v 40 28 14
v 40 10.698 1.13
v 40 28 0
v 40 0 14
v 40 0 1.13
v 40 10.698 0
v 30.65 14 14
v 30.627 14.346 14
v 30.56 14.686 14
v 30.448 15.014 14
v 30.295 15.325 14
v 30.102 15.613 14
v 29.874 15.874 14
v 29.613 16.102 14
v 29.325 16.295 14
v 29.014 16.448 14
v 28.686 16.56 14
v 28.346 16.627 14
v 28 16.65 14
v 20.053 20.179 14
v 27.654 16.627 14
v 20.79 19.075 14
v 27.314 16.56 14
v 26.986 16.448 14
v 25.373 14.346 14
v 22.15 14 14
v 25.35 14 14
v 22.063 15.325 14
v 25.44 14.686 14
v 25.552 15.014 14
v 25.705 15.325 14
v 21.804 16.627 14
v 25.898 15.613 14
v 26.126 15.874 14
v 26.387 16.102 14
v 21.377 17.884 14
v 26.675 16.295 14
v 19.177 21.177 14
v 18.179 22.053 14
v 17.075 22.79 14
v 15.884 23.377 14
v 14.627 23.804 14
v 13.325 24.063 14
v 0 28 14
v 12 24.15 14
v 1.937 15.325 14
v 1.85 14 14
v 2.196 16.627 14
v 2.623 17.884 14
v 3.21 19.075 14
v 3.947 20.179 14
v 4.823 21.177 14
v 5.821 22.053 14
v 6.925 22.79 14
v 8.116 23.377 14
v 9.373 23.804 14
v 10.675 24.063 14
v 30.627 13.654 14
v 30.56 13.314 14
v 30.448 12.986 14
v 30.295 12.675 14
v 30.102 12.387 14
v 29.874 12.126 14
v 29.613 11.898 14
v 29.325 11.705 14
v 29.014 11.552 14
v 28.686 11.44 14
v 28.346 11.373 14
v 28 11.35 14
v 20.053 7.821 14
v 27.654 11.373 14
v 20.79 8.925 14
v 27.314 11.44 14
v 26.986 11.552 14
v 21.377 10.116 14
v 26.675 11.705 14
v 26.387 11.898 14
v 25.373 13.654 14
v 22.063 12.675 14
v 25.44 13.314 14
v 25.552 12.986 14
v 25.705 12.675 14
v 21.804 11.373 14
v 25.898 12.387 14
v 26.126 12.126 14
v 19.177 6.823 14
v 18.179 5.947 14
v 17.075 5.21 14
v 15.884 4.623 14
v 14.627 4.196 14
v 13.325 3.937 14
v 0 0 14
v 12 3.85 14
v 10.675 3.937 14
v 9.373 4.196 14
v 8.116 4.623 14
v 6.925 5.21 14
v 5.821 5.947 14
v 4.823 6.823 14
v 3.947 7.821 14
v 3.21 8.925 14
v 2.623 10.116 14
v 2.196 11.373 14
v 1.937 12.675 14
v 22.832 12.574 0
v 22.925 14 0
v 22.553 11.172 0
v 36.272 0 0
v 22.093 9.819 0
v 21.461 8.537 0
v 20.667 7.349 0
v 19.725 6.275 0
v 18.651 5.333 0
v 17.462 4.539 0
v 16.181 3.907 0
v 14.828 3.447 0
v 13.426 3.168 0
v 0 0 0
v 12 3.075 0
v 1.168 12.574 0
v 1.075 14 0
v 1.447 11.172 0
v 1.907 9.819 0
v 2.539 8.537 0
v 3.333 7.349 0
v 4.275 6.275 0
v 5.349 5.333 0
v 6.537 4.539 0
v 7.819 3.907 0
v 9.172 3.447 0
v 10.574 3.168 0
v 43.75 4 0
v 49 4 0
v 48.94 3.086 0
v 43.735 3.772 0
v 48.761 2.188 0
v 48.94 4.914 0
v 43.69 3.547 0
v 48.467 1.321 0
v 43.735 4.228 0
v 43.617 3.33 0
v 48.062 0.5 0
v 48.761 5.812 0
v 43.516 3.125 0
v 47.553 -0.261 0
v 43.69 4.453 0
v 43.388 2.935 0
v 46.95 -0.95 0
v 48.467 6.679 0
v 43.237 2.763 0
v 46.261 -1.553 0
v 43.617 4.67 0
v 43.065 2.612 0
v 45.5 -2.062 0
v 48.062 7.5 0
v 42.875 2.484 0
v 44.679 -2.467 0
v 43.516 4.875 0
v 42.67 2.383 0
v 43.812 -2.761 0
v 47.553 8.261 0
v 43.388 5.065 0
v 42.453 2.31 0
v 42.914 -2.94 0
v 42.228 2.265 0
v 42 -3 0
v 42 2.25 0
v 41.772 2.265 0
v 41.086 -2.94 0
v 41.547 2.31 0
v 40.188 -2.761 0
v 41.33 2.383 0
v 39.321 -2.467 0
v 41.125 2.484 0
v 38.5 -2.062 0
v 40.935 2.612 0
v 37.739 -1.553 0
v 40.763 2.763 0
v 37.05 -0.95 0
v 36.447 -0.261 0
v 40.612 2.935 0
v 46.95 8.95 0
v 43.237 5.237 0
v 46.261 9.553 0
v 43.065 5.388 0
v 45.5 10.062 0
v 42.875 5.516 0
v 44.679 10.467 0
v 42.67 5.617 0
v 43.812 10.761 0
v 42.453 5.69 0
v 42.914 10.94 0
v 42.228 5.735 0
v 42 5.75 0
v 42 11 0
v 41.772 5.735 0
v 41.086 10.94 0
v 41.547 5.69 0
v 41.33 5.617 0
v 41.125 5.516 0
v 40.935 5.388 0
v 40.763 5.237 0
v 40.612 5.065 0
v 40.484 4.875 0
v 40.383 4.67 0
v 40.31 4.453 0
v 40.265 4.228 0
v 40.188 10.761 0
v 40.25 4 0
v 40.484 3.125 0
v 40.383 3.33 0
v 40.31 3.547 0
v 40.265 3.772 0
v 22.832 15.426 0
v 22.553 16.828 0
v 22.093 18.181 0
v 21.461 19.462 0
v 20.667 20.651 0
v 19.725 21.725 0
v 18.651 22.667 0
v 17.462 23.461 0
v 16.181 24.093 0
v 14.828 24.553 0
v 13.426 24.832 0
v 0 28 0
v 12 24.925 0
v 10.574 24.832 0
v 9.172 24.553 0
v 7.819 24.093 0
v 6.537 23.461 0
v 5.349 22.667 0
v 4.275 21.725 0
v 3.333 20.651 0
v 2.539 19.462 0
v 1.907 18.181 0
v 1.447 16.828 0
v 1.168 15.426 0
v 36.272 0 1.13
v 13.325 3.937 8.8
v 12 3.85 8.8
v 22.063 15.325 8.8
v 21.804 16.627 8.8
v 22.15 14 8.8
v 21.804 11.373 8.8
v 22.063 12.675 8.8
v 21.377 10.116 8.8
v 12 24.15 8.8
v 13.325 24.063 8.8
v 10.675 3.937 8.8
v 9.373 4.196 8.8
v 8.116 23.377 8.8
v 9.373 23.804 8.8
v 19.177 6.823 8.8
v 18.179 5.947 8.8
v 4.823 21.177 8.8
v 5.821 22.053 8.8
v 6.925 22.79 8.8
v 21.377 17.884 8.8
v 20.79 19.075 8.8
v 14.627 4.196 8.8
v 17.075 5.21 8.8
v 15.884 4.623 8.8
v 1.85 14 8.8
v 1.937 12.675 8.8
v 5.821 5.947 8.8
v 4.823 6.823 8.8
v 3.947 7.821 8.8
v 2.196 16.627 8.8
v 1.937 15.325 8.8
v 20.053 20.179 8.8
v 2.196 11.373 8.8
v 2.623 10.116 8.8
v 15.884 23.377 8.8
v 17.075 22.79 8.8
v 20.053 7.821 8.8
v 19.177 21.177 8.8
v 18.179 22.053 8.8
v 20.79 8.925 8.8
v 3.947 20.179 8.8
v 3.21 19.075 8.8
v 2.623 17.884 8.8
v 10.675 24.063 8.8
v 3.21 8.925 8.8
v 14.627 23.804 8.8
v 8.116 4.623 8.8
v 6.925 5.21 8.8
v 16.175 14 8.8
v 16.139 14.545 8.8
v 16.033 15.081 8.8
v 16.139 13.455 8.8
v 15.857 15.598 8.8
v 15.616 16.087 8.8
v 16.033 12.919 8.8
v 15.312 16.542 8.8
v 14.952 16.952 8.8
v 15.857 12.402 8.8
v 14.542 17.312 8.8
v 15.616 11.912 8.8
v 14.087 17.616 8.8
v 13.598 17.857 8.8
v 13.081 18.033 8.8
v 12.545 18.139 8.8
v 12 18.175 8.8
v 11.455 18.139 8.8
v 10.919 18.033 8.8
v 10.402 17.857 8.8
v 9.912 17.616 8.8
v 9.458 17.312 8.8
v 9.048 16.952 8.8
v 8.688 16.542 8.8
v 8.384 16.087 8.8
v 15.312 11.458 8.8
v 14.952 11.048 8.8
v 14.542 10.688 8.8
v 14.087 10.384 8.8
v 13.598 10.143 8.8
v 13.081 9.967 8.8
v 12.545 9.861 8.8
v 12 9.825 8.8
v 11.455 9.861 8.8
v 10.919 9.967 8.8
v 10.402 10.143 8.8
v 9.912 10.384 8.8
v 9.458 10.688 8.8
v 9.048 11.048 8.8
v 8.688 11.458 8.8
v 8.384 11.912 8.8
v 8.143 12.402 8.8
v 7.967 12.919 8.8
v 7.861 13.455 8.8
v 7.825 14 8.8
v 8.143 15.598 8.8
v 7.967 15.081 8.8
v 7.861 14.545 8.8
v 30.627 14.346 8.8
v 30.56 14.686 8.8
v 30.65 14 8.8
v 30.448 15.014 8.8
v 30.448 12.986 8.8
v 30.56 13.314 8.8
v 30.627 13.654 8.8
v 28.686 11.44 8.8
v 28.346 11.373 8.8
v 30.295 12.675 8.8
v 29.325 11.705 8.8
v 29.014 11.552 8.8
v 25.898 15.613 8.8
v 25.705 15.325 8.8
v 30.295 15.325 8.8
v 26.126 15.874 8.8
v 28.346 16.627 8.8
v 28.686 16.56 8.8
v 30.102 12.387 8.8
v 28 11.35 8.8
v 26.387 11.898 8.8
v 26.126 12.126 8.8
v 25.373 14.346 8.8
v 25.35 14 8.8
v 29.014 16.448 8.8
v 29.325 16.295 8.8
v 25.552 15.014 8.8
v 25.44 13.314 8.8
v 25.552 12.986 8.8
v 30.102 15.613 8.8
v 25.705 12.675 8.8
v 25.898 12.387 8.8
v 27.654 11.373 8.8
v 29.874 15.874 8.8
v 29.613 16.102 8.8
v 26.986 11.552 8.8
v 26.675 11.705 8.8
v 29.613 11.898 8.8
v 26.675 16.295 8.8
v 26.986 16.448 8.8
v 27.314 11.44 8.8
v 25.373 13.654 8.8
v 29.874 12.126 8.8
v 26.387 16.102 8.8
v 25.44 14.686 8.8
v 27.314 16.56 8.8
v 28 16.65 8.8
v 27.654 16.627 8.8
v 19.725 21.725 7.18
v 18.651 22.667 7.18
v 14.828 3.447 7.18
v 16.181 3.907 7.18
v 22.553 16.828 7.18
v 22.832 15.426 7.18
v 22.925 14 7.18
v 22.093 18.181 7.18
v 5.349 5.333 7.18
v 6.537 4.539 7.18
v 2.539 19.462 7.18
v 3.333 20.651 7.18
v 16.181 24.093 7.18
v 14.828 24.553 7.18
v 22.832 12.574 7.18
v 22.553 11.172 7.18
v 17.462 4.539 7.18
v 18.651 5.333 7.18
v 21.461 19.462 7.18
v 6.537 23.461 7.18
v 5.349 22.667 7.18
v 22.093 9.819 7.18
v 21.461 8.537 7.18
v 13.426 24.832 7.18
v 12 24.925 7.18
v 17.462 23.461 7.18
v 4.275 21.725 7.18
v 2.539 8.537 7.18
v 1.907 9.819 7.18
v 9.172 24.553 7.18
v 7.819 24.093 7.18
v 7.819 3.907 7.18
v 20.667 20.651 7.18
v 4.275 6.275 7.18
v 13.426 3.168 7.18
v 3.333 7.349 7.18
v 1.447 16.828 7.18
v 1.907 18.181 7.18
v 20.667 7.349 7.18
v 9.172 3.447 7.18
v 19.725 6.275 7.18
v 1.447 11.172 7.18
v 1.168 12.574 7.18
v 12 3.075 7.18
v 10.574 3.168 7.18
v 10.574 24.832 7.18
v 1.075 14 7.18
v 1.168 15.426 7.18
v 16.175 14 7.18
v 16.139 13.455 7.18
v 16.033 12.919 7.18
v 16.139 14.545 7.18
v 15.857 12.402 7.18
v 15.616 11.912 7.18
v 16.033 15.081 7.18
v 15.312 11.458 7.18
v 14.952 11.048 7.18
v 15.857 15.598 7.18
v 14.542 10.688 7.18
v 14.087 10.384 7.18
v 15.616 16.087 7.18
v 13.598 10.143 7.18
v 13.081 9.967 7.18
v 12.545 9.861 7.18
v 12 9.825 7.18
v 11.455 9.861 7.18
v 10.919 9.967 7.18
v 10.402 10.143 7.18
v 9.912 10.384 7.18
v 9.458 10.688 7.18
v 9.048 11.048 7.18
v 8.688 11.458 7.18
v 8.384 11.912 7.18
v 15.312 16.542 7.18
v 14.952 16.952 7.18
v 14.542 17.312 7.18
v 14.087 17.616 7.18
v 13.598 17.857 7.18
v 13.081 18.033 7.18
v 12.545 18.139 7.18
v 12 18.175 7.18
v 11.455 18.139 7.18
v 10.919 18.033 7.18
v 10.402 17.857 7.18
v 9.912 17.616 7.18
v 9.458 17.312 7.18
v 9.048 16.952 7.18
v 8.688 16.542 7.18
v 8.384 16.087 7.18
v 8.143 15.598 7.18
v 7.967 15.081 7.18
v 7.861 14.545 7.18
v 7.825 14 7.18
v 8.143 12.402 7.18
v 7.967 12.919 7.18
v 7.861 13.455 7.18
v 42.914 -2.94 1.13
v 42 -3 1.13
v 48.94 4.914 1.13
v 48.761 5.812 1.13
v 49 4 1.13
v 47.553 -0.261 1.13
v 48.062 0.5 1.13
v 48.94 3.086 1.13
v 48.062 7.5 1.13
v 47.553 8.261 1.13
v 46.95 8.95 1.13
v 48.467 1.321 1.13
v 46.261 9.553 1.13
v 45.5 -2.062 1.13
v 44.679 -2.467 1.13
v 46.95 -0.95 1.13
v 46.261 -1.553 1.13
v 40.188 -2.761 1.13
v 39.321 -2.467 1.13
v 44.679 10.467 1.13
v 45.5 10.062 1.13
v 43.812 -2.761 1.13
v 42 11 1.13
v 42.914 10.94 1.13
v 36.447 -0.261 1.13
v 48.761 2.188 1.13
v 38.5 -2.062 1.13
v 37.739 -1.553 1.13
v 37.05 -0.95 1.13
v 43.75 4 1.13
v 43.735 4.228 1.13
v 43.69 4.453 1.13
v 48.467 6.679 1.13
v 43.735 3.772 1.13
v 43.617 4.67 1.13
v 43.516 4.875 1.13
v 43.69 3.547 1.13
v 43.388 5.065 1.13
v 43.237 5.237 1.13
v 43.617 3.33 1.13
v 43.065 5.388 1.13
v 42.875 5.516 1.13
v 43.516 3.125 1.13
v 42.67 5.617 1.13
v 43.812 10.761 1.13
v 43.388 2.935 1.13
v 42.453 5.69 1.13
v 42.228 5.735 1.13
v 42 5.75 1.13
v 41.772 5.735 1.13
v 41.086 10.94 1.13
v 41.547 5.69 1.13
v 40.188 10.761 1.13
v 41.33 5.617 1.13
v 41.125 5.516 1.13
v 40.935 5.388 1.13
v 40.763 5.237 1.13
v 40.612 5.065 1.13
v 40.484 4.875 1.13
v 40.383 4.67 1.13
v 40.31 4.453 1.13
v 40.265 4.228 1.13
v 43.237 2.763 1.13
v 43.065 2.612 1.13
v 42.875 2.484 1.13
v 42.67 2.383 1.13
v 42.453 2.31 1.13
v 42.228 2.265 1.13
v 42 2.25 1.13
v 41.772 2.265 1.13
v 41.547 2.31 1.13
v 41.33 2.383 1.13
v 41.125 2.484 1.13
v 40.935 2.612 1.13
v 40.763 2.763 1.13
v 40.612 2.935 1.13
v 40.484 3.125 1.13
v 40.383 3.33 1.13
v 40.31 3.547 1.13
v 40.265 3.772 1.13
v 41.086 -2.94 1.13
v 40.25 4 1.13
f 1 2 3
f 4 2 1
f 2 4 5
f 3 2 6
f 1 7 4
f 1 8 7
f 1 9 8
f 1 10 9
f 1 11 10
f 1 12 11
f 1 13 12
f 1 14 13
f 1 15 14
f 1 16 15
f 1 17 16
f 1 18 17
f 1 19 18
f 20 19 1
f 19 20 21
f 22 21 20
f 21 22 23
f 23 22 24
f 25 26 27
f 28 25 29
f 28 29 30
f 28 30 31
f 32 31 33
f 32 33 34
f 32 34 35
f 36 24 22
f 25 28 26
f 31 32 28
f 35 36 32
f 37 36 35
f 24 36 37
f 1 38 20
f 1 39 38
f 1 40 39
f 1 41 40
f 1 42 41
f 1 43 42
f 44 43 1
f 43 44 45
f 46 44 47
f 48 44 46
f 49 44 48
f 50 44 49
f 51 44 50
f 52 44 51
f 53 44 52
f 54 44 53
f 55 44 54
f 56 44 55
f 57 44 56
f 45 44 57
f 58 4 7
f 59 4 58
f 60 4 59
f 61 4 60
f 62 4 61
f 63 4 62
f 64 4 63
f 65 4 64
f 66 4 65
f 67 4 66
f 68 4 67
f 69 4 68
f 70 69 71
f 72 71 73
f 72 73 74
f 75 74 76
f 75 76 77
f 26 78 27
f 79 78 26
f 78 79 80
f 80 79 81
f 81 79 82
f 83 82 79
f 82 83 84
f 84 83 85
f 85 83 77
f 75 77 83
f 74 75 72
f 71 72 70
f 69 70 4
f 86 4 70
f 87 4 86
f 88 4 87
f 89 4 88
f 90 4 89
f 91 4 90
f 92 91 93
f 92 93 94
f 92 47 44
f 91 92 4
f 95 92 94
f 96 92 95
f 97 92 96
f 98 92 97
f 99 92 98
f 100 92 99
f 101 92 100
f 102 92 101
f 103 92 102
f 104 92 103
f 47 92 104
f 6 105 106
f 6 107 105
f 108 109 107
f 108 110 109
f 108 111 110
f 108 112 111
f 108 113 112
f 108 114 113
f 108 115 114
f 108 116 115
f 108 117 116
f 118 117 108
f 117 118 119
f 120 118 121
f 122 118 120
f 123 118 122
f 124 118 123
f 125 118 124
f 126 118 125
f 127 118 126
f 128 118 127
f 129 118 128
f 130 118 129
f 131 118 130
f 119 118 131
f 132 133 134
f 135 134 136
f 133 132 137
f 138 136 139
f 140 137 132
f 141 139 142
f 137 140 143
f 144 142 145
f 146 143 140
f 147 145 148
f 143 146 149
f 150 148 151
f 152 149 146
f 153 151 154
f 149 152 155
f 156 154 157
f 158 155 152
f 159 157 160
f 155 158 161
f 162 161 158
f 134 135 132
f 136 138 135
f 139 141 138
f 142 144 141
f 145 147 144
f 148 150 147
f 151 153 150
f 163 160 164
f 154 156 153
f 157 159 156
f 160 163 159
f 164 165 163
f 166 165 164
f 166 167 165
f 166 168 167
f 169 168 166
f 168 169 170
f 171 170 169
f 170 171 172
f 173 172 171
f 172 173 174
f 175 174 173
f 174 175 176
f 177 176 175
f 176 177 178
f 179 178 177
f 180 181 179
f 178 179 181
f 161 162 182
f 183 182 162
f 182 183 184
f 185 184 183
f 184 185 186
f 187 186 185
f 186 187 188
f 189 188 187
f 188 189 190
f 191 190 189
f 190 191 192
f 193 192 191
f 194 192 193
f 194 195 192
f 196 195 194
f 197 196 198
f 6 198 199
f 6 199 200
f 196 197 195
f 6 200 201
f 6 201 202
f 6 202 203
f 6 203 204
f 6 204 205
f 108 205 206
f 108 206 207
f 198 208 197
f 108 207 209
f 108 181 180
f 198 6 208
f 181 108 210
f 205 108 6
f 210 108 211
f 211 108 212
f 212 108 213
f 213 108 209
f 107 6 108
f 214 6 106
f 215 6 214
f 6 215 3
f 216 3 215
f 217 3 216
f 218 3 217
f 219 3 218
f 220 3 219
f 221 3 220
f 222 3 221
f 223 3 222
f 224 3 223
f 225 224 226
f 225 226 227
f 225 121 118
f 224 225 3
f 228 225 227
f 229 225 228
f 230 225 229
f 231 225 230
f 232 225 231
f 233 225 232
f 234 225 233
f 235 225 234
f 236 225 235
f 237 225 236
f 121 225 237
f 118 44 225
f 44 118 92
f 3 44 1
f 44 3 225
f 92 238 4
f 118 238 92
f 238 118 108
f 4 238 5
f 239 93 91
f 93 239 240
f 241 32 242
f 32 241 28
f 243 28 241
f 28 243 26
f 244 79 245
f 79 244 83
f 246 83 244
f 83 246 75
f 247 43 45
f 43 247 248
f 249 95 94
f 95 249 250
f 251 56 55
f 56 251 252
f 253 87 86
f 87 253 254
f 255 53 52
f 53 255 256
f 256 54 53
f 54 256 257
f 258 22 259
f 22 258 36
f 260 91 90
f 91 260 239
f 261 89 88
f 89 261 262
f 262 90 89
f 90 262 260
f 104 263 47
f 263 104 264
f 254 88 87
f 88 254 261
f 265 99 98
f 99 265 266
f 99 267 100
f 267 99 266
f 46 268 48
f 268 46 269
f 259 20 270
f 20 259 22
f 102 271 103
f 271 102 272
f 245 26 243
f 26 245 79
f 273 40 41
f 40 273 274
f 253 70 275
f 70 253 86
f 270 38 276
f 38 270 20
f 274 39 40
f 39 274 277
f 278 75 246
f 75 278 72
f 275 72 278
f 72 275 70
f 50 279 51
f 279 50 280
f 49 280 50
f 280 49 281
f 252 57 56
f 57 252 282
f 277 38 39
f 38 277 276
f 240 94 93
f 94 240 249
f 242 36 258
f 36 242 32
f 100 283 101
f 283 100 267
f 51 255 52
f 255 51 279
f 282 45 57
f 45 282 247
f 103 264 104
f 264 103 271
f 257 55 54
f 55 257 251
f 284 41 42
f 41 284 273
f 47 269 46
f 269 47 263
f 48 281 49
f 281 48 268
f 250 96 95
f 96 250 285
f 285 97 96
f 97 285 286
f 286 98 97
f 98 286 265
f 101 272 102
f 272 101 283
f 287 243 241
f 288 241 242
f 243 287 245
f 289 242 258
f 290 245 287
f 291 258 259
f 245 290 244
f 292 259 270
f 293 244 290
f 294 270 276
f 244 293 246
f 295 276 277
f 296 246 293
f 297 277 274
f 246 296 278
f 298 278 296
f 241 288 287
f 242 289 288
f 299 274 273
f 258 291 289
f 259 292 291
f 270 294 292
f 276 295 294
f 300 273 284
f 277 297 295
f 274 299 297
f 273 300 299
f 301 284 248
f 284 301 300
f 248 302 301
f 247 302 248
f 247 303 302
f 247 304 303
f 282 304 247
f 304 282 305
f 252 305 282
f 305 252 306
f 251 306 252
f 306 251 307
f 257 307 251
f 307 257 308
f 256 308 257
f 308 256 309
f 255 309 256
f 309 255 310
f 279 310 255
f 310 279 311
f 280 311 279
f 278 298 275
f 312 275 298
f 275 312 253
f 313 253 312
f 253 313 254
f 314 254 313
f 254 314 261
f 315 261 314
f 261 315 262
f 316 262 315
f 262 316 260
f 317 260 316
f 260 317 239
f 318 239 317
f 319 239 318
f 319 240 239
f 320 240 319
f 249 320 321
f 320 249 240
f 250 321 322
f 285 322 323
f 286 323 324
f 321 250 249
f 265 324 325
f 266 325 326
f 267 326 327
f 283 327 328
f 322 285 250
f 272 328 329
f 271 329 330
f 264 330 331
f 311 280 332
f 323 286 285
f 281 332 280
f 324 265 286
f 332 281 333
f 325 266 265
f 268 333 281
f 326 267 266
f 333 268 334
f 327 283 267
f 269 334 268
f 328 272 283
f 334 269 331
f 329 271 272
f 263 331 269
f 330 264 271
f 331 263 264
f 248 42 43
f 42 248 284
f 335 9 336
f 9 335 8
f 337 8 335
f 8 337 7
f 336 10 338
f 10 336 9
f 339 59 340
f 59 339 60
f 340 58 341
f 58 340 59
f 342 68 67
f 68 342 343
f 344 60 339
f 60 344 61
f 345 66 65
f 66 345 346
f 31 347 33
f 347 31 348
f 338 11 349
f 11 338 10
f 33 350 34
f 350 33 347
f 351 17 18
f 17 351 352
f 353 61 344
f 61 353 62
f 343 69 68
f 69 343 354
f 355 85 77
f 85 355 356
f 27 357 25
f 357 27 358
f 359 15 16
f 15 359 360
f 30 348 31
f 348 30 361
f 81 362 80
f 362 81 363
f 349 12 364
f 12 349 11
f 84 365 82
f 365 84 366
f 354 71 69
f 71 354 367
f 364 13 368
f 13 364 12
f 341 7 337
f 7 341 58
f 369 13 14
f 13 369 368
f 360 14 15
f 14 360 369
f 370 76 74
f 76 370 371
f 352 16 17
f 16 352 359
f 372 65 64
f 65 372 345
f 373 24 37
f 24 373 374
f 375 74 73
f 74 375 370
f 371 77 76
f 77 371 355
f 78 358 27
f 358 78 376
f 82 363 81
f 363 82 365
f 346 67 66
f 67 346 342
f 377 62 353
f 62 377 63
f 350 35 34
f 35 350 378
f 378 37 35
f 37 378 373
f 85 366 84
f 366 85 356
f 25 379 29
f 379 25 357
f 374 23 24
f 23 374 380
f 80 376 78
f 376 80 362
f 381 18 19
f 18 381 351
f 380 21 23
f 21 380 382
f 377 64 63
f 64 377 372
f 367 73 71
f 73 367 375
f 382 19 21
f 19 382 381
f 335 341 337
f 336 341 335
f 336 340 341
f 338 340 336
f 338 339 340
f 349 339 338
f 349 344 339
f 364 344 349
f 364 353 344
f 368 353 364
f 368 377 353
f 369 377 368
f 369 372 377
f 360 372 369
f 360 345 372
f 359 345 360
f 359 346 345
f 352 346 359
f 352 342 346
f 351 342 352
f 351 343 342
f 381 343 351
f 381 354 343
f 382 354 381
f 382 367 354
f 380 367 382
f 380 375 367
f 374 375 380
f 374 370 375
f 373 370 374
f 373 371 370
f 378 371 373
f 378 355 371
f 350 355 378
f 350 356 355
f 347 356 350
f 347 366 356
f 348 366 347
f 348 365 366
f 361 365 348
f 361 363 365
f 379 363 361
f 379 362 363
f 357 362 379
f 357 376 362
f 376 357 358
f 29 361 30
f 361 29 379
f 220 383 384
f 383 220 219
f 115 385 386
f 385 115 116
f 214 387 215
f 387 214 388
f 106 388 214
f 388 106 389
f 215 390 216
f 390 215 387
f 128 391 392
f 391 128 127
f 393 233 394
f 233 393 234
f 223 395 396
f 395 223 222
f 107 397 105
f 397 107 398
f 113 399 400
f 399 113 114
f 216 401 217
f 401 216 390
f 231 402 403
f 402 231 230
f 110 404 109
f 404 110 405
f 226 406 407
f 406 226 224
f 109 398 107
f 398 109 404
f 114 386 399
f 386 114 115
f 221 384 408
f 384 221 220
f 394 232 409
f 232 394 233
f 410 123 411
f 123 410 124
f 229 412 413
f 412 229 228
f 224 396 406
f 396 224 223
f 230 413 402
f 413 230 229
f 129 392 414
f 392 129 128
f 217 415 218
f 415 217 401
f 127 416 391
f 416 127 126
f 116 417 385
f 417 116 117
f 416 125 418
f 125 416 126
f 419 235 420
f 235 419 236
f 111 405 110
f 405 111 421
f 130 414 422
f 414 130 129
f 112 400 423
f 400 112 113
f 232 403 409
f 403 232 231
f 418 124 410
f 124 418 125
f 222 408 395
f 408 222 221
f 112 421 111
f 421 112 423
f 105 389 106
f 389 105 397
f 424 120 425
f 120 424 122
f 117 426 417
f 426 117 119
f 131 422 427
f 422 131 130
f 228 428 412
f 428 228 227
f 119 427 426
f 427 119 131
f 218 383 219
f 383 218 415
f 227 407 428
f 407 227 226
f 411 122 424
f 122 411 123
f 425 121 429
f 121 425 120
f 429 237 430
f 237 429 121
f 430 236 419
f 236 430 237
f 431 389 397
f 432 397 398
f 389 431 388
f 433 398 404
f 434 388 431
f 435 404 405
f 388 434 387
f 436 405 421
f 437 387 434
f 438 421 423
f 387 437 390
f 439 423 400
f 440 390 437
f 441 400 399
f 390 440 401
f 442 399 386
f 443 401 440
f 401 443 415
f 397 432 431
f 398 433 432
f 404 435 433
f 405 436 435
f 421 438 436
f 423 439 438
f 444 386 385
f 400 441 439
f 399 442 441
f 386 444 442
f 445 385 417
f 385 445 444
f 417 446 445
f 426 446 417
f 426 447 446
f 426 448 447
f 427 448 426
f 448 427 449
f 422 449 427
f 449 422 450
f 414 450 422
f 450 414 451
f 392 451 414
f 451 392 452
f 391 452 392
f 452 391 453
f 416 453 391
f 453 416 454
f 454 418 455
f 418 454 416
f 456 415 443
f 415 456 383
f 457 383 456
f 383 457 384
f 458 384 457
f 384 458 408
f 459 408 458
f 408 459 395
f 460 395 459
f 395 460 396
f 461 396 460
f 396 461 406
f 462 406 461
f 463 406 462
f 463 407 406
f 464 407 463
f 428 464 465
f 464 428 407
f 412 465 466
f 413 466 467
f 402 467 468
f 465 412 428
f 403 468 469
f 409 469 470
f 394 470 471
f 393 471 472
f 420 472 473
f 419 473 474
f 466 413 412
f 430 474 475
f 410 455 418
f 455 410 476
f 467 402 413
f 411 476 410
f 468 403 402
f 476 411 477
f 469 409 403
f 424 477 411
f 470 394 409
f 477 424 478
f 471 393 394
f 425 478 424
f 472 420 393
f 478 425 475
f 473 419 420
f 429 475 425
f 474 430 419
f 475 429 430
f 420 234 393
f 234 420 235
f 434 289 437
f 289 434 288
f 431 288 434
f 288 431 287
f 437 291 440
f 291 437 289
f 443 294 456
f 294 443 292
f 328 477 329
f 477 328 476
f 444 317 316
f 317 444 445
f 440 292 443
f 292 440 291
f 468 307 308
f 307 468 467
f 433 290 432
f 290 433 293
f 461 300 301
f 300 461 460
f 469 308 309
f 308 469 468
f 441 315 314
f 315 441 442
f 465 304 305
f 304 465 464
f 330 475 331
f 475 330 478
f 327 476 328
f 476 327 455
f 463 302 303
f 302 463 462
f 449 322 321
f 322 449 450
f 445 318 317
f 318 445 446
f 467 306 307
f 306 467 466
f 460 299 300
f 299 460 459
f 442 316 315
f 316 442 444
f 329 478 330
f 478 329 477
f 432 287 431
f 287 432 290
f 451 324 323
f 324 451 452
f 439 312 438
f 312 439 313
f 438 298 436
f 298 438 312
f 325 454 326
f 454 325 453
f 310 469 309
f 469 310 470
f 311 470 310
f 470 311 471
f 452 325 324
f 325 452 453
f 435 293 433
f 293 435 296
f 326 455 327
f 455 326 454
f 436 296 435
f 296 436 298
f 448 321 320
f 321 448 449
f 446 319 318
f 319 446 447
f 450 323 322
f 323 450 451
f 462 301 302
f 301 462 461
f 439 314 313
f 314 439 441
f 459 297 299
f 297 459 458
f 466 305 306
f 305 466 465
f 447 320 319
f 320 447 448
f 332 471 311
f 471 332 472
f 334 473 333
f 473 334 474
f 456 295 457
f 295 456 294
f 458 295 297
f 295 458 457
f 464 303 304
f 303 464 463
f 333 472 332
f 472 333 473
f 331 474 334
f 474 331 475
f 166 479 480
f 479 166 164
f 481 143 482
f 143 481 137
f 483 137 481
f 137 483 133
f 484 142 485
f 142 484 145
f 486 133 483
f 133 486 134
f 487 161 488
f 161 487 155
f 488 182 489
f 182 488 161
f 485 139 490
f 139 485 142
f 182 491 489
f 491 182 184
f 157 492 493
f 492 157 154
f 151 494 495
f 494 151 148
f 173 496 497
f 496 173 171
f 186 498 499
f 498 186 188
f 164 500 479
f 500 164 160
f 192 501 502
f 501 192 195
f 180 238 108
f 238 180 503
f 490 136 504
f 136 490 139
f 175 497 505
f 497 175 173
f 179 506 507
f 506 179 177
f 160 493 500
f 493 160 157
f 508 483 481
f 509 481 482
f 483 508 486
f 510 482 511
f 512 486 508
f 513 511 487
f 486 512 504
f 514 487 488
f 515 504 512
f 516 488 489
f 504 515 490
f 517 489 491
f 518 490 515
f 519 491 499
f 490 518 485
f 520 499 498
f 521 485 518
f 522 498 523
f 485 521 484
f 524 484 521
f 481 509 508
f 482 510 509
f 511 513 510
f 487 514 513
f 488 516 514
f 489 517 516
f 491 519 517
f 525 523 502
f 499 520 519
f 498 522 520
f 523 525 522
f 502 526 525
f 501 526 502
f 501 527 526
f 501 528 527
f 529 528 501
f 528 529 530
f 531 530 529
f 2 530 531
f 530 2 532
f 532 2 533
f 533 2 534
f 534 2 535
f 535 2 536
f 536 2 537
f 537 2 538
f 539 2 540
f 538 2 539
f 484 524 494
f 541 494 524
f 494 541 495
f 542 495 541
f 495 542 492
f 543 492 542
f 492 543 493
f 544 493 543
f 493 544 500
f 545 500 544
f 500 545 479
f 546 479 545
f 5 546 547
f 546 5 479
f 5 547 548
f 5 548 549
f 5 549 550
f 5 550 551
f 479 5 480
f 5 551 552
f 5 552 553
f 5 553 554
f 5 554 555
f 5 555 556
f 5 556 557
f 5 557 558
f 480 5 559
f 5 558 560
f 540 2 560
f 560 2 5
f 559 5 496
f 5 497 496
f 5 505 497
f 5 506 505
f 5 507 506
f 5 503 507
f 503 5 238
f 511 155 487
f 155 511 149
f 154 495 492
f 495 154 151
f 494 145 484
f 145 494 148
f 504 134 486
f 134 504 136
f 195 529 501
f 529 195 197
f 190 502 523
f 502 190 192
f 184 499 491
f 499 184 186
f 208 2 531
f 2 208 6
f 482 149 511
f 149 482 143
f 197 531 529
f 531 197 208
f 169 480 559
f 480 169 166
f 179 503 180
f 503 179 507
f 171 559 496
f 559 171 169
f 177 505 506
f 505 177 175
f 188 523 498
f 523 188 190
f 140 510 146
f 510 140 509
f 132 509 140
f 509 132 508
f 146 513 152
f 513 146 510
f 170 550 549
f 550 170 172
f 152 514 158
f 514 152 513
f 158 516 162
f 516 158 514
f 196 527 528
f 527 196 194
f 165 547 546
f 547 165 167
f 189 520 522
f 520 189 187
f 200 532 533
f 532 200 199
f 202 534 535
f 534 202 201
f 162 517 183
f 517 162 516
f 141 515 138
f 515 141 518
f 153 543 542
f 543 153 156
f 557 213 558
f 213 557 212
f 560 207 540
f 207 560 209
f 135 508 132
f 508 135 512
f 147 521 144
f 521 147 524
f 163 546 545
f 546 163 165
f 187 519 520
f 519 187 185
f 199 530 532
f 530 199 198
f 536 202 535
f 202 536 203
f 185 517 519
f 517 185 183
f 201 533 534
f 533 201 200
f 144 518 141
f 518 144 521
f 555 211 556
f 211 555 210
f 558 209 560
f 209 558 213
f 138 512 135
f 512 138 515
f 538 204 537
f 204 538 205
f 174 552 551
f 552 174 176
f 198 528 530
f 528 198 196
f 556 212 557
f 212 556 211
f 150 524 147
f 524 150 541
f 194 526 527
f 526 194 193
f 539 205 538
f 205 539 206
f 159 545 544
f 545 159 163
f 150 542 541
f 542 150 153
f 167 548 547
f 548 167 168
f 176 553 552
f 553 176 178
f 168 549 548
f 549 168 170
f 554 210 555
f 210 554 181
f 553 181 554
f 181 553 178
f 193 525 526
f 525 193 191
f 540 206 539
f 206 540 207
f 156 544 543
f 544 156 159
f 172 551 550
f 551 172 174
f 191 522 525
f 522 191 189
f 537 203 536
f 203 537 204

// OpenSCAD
// file: parameters.scad
// =============================================================================
// Gen-AO Stacked dual-stator mid-rotor copper-max ultra - WOUND-AWARE (HARD GATE)
// ONE mid dual-face Halbach rotor | TWO wound pancake stators | 18 coils x165 t
// =============================================================================

wire_awg            = 26;
wire_od             = 0.45;
turns               = 165;      // +10 vs Gen-AL 155; 18x165x~0.119 ~ 353 m
fill                = 0.70;
layers_per_face     = 2;
wind_build_axial    = layers_per_face * wire_od * fill;   // 0.63
wind_build_radial   = 3 * wire_od * fill;                 // 0.945

coil_id_r           = 18.0;
coil_od_r           = 63.0;
span_deg            = 34.0;     // 9 stations x 40 deg
former_web          = 1.30;     // thinner vs AL 1.40
flange_t            = 0.60;
wall                = 1.2;
slot_w              = 2.4;
mount_hole          = 3.5;
tab_len             = 7.0;

former_bare_h       = former_web + 2 * flange_t;            // 2.50
coil_envelope_h     = former_bare_h + 2 * wind_build_axial; // 3.76

run_clear           = 0.50;
gap_spacer_h        = run_clear + wind_build_axial;         // 1.13
m2m                 = coil_envelope_h + 2 * run_clear;      // 4.76 per gap

coil_stations       = 9;        // per stator; x2 = 18 total
bay_r_in            = coil_id_r - 2.0 - wind_build_radial;
bay_r_out           = coil_od_r + 2.0 + wind_build_radial;
bay_span            = span_deg + 4.0;
bay_offset          = 2.0;
bay_depth           = former_bare_h + wind_build_axial;     // wound sits in bay
stator_back_web     = 2.0;
stator_thick        = bay_depth + stator_back_web;
stator_od           = 156.0;
shaft_clear_stator  = 38.0;
coil_mount_r        = 27.5;

large_pocket_d      = 20.3;
small_pocket_d      = 5.3;
pocket_h            = 5.2;
large_n             = 8;
R_large             = 40.0;     // tighter copper overlap vs AL R=41
R_small_inner       = 26.5;
R_small_mid         = 40.0;
R_small_outer       = 56.5;
carrier_od          = 154.0;
mid_carrier_thick   = 12.0;
hub_h               = 10.0;
hub_od              = 30.0;
rotor_b_offset_deg  = 22.5;

shaft_bore          = 8.35;
bearing_d           = 21.85;
bearing_h           = 7.2;
m3_clear            = 3.5;
bolt_r_inner        = 36.0;
bolt_n_inner        = 6;
flange_bolt_r       = 72.0;
flange_bolt_n       = 6;
brace_r             = 68.0;
brace_d             = 4.3;
brace_n             = 4;

spacer_pad_od       = 14.0;
spacer_pad_id       = m3_clear;
endbell_od          = 156.0;
endbell_thick       = 8.0;
endbell_shaft_clear = 10.0;

$fn = 64;
// main file
// Gen-AO fit coupon — magnet pockets + 608 + spacer height
include <parameters.scad>;
$fn = 48;
block_w = 40; block_d = 28; block_h = 14;
difference() {
    cube([block_w, block_d, block_h]);
    translate([12, block_d/2, block_h - pocket_h])
        cylinder(d=large_pocket_d, h=pocket_h + 0.2);
    translate([28, block_d/2, block_h - pocket_h])
        cylinder(d=small_pocket_d, h=pocket_h + 0.2);
    translate([12, block_d/2, -0.02])
        cylinder(d=bearing_d, h=bearing_h);
    translate([12, block_d/2, -0.1])
        cylinder(d=shaft_bore, h=block_h + 1);
}
translate([block_w + 2, 4, 0])
    difference() {
        cylinder(d=spacer_pad_od, h=gap_spacer_h);
        translate([0, 0, -0.1]) cylinder(d=spacer_pad_id, h=gap_spacer_h + 0.2);
    }
